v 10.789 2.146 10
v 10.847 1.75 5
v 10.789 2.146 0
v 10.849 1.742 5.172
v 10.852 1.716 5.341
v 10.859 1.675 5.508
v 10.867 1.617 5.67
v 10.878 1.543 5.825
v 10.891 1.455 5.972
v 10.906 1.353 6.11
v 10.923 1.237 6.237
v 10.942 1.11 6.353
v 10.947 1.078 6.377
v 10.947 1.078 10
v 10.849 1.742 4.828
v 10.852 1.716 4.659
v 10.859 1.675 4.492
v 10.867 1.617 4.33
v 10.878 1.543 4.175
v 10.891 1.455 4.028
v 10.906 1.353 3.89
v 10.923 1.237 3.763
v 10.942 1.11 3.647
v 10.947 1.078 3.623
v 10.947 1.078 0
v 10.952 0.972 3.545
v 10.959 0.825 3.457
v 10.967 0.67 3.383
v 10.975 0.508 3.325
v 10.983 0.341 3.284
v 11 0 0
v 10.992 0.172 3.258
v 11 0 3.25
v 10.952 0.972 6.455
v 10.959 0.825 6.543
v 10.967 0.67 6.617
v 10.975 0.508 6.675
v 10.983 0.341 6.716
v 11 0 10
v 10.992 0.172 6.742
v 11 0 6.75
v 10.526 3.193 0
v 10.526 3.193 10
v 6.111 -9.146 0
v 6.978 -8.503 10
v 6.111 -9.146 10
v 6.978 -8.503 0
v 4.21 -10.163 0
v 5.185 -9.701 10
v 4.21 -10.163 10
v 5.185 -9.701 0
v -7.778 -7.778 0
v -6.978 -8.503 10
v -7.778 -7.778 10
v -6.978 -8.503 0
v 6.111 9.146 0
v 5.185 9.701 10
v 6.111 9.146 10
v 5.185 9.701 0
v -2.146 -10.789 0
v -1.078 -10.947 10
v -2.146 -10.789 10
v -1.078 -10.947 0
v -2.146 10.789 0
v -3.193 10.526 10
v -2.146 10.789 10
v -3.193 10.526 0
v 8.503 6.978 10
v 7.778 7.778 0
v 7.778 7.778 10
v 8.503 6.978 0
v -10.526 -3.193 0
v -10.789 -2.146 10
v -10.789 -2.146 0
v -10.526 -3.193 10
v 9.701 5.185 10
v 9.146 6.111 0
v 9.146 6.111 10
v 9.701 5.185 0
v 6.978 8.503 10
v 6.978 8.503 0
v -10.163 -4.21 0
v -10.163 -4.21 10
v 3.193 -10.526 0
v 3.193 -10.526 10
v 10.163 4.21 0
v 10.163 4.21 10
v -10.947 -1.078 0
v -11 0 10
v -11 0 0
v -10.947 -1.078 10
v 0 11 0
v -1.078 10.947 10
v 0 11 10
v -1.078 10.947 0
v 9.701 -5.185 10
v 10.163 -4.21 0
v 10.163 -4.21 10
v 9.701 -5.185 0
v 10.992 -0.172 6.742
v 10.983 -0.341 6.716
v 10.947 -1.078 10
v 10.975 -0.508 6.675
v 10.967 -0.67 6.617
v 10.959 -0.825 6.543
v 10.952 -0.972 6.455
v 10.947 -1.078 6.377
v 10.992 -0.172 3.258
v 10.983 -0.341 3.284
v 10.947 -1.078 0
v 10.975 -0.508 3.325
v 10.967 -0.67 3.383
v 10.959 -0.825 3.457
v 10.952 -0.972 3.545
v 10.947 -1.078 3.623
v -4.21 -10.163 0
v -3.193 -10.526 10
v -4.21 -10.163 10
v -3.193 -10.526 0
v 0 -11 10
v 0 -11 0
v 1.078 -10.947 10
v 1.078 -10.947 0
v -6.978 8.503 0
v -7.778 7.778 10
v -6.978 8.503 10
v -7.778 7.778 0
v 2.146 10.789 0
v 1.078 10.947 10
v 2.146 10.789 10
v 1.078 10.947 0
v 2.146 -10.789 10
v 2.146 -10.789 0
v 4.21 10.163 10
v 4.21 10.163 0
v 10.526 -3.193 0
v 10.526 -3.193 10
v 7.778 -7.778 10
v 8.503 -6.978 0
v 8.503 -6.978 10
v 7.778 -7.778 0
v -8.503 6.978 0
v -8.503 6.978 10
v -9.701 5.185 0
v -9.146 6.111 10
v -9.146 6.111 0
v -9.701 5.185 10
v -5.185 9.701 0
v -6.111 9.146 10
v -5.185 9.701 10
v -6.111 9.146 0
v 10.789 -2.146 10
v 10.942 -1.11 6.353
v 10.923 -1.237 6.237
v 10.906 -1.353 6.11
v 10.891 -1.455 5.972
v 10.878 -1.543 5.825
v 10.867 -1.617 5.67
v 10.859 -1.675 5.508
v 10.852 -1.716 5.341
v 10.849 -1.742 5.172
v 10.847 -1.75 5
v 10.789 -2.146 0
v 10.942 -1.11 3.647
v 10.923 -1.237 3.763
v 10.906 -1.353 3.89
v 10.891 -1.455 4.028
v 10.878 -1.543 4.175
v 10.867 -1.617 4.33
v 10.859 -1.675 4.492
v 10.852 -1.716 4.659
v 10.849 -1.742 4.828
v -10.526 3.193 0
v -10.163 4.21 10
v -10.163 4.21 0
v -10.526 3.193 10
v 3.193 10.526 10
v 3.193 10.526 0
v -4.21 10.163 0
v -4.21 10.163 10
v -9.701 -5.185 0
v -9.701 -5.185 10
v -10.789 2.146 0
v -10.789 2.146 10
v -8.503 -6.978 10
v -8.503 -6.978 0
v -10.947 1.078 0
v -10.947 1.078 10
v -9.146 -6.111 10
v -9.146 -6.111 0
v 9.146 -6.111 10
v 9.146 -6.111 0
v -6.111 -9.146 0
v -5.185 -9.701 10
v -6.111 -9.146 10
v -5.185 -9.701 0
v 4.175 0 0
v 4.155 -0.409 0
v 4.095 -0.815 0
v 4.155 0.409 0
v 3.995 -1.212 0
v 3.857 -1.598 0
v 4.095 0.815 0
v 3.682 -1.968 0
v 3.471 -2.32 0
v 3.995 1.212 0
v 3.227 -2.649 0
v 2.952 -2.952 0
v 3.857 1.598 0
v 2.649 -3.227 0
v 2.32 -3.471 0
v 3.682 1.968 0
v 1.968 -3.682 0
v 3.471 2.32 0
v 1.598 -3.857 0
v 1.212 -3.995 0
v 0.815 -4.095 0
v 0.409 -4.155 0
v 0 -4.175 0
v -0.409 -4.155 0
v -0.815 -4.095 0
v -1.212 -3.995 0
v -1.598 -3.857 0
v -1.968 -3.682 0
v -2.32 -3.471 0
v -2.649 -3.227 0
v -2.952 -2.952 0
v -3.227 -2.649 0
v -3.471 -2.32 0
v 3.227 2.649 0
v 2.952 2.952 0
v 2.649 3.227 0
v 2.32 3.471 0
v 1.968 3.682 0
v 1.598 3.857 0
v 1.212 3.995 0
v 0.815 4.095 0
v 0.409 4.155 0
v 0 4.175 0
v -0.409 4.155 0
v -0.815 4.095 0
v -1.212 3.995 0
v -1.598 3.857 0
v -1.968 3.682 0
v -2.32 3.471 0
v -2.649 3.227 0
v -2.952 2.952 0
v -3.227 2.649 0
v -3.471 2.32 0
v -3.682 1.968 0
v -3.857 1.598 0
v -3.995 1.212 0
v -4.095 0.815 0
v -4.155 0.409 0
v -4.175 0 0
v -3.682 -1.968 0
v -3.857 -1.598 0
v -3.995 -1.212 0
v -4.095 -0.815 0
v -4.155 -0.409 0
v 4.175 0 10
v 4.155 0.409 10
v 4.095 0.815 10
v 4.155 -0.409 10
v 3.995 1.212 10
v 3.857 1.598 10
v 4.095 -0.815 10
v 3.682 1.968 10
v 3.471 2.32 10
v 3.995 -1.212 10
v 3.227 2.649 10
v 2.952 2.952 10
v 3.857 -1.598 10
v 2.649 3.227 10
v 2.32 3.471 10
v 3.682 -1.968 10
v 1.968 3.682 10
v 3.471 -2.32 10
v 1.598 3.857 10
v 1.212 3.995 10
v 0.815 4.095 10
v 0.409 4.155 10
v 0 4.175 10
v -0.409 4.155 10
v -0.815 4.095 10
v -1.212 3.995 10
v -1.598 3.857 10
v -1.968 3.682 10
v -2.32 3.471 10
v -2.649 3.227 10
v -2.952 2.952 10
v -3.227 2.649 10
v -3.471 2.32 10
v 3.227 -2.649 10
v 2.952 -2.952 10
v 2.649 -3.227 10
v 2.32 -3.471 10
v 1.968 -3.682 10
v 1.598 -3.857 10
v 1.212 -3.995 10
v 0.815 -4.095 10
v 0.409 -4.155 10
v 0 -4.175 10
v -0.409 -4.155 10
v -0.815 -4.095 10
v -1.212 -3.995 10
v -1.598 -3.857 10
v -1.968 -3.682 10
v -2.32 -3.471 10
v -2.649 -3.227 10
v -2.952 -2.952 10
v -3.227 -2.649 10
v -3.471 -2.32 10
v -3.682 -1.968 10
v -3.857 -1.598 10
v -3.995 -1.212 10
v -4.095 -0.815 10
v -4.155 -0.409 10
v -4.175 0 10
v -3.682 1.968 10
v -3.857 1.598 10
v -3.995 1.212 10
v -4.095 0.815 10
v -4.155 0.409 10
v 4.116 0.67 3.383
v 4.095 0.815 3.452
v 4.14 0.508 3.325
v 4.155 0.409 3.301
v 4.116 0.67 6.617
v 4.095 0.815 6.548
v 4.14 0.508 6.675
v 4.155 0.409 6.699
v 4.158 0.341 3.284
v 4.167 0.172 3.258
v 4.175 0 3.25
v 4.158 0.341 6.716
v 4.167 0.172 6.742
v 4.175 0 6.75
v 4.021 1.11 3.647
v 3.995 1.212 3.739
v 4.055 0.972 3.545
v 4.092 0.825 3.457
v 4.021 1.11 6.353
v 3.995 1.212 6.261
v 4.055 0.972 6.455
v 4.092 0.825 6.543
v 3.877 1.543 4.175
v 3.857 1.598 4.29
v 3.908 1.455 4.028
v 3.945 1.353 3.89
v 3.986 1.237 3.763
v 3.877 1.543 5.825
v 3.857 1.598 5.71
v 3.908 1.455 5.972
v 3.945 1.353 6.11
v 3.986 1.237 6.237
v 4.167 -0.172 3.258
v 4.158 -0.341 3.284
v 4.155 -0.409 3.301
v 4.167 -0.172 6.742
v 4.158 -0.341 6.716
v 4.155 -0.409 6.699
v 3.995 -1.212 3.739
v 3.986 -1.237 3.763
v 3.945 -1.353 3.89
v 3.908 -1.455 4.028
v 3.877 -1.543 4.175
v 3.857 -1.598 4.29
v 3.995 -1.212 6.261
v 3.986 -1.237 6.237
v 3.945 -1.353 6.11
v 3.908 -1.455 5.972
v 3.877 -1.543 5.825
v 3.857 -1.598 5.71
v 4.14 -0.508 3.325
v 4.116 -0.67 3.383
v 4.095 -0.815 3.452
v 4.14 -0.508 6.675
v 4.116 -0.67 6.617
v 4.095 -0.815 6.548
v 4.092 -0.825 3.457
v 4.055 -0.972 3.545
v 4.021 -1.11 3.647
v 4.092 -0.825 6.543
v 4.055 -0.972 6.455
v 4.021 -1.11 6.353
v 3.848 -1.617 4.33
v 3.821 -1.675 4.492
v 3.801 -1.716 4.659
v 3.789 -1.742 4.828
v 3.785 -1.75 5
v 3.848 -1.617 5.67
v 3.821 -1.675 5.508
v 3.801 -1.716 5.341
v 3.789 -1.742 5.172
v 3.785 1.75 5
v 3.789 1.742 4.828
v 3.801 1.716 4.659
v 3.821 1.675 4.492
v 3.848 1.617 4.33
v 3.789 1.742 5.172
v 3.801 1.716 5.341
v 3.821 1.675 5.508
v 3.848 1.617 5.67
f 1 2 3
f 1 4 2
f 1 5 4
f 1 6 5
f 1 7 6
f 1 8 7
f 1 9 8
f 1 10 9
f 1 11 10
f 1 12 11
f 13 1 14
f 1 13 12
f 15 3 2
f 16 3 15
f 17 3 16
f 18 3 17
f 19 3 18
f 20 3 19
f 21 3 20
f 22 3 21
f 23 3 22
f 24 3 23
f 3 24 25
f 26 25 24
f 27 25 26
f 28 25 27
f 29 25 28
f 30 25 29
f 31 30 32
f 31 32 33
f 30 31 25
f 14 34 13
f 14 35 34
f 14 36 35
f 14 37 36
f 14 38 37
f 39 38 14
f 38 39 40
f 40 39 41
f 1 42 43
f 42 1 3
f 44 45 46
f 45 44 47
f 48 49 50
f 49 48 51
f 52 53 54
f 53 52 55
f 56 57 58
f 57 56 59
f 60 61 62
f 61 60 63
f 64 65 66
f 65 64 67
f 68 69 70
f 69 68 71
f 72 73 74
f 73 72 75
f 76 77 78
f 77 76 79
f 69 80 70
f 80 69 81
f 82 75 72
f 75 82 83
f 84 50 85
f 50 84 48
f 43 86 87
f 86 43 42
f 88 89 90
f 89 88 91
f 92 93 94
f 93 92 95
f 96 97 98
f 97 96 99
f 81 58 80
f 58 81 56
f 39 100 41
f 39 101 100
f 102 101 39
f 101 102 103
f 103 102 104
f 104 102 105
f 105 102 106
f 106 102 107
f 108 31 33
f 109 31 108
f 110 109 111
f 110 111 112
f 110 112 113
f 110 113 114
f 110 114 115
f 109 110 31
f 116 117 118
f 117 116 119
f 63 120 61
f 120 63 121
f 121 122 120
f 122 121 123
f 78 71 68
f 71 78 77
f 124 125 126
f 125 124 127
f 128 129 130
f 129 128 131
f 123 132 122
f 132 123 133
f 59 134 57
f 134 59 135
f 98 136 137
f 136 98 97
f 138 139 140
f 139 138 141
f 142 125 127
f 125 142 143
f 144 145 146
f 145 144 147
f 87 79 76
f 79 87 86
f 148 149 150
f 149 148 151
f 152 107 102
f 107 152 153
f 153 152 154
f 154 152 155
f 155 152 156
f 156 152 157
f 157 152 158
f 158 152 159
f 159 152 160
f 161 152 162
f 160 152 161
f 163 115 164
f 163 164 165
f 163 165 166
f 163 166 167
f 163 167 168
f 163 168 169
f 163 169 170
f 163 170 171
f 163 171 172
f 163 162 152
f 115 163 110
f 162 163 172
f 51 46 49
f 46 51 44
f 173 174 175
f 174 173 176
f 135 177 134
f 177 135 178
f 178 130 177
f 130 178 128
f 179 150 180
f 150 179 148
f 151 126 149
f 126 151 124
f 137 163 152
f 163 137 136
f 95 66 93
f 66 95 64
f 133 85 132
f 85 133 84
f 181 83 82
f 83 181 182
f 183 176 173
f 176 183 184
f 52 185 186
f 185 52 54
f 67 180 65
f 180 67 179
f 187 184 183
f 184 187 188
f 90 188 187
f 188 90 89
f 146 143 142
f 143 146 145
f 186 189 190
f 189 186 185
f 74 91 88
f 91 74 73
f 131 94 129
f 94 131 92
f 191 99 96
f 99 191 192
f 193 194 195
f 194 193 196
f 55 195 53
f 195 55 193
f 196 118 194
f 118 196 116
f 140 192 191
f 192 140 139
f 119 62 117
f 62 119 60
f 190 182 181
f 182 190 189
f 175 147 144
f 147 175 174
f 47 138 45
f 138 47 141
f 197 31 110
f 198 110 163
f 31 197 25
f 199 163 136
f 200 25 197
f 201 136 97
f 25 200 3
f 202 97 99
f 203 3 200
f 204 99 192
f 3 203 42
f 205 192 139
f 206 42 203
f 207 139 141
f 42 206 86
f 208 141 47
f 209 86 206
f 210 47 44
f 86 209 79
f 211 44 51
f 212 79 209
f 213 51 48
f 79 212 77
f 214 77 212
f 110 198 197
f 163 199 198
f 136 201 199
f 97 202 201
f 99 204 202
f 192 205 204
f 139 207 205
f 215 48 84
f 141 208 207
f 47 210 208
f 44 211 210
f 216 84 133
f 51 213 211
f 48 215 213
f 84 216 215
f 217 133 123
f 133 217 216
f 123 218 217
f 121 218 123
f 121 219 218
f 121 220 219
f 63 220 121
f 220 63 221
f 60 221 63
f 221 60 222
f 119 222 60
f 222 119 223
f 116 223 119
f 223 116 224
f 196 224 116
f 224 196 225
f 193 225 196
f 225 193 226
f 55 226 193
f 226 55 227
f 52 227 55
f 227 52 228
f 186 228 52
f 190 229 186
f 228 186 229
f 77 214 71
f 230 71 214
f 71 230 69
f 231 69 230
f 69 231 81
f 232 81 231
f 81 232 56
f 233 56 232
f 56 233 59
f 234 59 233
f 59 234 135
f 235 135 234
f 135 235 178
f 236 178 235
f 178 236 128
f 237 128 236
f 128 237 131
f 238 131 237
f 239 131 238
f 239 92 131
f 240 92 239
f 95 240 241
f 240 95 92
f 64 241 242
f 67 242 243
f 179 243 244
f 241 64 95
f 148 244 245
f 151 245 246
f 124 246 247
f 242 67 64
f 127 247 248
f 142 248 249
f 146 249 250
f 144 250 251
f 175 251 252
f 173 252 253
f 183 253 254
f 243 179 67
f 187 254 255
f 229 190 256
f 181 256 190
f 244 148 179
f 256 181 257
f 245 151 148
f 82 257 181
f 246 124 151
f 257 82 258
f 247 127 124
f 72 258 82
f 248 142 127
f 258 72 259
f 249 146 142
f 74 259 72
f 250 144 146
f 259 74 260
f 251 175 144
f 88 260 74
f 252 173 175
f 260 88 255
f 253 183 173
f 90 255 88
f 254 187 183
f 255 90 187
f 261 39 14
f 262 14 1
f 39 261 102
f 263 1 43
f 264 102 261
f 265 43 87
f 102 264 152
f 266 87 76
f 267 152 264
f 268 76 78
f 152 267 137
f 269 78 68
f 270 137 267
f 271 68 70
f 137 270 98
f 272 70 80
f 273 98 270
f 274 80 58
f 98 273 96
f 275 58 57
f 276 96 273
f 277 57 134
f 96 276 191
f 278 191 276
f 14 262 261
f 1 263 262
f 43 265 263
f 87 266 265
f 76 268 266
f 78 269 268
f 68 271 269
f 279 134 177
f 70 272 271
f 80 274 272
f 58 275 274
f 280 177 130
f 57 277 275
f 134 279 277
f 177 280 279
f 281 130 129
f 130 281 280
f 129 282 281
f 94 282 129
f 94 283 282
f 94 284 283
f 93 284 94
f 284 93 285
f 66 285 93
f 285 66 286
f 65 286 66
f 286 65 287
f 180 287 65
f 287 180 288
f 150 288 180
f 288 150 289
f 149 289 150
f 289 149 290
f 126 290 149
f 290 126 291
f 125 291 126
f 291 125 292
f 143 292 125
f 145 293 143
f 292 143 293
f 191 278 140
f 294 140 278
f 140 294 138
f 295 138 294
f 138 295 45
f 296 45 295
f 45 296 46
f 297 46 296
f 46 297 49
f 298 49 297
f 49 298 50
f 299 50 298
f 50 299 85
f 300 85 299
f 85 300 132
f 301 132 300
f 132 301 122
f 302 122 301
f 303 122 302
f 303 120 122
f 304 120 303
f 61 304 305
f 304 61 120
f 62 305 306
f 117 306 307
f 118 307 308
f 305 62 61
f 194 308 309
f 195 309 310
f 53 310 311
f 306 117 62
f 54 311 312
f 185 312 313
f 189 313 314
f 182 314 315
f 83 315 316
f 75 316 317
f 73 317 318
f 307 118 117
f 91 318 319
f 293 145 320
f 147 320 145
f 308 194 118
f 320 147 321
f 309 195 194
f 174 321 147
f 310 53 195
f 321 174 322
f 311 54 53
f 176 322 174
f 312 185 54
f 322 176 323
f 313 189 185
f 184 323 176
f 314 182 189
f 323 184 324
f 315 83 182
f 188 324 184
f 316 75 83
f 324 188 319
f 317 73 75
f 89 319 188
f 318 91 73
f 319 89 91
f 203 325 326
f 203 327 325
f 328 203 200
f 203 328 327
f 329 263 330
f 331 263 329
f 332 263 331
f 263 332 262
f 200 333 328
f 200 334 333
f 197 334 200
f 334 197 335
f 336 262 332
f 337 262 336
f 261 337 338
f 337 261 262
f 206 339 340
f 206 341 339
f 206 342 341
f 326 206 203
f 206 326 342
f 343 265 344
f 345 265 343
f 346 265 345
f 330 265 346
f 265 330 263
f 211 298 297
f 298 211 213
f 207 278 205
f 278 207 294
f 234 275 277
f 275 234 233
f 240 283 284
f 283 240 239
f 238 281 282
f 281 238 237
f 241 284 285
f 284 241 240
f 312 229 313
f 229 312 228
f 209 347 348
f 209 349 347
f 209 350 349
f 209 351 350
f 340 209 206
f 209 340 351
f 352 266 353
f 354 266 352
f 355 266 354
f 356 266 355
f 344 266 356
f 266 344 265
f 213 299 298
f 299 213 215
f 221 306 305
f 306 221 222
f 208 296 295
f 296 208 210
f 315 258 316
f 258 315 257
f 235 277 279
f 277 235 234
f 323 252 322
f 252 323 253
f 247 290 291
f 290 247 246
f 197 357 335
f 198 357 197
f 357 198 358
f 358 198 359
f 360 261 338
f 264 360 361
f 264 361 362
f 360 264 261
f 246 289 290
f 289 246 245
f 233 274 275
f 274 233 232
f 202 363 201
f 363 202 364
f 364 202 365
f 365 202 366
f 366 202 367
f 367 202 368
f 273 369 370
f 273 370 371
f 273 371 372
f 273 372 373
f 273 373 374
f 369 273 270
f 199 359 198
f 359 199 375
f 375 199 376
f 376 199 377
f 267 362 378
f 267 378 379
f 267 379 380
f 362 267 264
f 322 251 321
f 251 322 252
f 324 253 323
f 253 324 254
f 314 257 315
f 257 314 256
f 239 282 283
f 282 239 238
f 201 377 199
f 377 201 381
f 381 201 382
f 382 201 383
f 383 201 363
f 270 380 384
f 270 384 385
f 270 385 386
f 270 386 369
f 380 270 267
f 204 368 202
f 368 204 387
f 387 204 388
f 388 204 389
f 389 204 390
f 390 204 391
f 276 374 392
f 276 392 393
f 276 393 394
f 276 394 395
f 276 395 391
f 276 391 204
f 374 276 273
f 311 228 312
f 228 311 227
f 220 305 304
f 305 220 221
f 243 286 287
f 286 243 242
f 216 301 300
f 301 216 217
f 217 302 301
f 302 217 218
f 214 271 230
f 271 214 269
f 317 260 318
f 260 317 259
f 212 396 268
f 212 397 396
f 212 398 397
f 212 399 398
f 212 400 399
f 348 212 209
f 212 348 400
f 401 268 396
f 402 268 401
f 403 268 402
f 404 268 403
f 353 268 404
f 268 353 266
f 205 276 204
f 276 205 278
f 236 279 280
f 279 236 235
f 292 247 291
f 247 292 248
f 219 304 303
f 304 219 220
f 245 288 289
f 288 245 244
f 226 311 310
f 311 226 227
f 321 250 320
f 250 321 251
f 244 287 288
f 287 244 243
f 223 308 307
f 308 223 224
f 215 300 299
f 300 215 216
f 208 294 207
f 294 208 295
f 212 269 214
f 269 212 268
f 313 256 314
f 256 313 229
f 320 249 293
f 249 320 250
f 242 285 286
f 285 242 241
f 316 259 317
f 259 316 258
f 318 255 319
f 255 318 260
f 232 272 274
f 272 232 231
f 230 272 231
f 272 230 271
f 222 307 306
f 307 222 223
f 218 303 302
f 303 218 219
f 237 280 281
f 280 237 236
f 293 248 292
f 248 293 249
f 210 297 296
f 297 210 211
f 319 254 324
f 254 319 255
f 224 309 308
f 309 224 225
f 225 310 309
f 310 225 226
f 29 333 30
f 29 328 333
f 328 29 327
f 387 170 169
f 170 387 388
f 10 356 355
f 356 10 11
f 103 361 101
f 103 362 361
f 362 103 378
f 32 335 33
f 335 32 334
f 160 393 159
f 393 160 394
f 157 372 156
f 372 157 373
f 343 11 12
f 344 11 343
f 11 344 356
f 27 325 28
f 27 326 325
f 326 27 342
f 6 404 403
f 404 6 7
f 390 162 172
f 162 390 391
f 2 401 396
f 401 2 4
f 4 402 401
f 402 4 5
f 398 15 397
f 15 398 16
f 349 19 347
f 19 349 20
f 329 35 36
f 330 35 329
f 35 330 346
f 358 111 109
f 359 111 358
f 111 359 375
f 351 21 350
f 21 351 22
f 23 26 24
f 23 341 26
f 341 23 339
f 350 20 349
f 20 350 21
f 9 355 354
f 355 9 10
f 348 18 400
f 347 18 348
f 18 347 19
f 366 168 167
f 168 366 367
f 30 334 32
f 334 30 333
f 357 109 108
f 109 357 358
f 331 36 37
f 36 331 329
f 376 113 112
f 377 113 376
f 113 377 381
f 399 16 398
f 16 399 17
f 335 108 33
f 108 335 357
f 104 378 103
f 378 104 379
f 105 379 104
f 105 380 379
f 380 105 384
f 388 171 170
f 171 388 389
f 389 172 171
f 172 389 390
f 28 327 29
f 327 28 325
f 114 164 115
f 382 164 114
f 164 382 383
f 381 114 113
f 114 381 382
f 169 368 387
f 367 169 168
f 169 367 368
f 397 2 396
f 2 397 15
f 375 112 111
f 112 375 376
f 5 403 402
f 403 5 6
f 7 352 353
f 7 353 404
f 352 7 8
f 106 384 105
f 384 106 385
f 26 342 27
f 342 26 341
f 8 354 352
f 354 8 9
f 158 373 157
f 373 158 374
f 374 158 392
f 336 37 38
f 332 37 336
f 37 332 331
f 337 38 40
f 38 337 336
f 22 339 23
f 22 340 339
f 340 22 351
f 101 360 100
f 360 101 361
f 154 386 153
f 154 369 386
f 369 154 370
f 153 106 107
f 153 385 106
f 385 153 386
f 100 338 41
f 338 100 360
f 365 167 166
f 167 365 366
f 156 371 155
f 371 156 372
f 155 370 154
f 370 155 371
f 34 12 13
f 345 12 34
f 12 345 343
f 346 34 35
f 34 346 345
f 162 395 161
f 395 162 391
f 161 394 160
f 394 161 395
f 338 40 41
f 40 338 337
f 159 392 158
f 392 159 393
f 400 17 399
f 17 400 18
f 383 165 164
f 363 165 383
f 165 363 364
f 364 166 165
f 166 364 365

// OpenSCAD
// file: parameters.scad
// =============================================================================
// Gen-AK Dual-rotor copper-centroid ultra AFPM — WOUND-AWARE (HARD GATE)
// PRIMARY challenger vs Gen-AH. Magnets @ R=40 + 190 t + former_web 1.40 → m2m 4.86.
// =============================================================================

// --- Wire / wind budget (26 AWG, ~1 lb spool ≈ 390 m bare-equiv) --------------
wire_awg            = 26;
wire_od             = 0.45;     // insulated OD mm
turns               = 190;      // +10 vs Gen-AH 180
fill                = 0.70;
layers_per_face     = 2;        // axial layers proud of EACH flange
wind_build_axial    = layers_per_face * wire_od * fill;   // 0.63 mm
wind_build_radial   = 3 * wire_od * fill;                 // 0.945 mm

// --- Pancake former (bare STL) -----------------------------------------------
coil_id_r           = 16.0;     // copper-centroid window centered ~R=40
coil_od_r           = 64.0;
span_deg            = 26.0;     // 12 stations × 30° pitch
former_web          = 1.40;     // thinner vs AH 1.50 (print-safe ≥0.8)
flange_t            = 0.60;
wall                = 1.2;
slot_w              = 2.4;
mount_hole          = 3.5;
tab_len             = 7.0;

former_bare_h       = former_web + 2 * flange_t;            // 2.60 mm
coil_envelope_h     = former_bare_h + 2 * wind_build_axial; // 3.86 mm

// --- Running clearance (magnet face → WOUND face) EACH side ------------------
run_clear           = 0.50;     // PASS floor ≥ 0.5
gap_spacer_h        = run_clear + wind_build_axial;         // 1.13 mm
m2m                 = coil_envelope_h + 2 * run_clear;      // 4.86 mm (beats Gen-AH 4.96)

// --- Mid stator (12 pancakes 3φ; winds proud both faces) ---------------------
coil_stations       = 12;
bay_r_in            = coil_id_r - 2.0 - wind_build_radial;
bay_r_out           = coil_od_r + 2.0 + wind_build_radial;
bay_span            = span_deg + 4.0;
bay_offset          = 2.0;
stator_thick        = former_bare_h;                        // winds proud ±Z
stator_od           = 160.0;
shaft_clear_stator  = 34.0;
coil_mount_r        = 26.0;

// --- Rotors (×2) — 8×Ø20 @ R=40 (copper centroid) + 24×Ø5 Halbach ------------
large_pocket_d      = 20.3;
small_pocket_d      = 5.3;
pocket_h            = 5.2;
large_n             = 8;
R_large             = 40.0;     // covers ~30–50 over copper centroid ~40
R_small_inner       = 25.0;
R_small_mid         = 40.0;
R_small_outer       = 57.0;
carrier_od          = 156.0;
carrier_thick       = 7.5;
hub_h               = 10.0;
hub_od              = 30.0;
rotor_b_offset_deg  = 22.5;

// --- Modular MAX interface (Gen-E family) ------------------------------------
shaft_bore          = 8.35;
bearing_d           = 21.85;
bearing_h           = 7.2;
m3_clear            = 3.5;
bolt_r_inner        = 36.0;
bolt_n_inner        = 6;
flange_bolt_r       = 72.0;
flange_bolt_n       = 6;
brace_r             = 68.0;
brace_d             = 4.3;
brace_n             = 4;

spacer_pad_od       = 14.0;
spacer_pad_id       = m3_clear;
endbell_od          = 160.0;
endbell_thick       = 8.0;
endbell_shaft_clear = 10.0;

$fn = 64;
// main file
// Gen-AK shaft collar — print ×2–4
include <parameters.scad>;
$fn = 64;
od = 22; id = shaft_bore; h = 10; set_d = 3.5;
difference() {
    cylinder(d=od, h=h);
    translate([0, 0, -0.1]) cylinder(d=id, h=h + 0.2);
    translate([0, 0, h/2]) rotate([0, 90, 0]) cylinder(d=set_d, h=od);
}
